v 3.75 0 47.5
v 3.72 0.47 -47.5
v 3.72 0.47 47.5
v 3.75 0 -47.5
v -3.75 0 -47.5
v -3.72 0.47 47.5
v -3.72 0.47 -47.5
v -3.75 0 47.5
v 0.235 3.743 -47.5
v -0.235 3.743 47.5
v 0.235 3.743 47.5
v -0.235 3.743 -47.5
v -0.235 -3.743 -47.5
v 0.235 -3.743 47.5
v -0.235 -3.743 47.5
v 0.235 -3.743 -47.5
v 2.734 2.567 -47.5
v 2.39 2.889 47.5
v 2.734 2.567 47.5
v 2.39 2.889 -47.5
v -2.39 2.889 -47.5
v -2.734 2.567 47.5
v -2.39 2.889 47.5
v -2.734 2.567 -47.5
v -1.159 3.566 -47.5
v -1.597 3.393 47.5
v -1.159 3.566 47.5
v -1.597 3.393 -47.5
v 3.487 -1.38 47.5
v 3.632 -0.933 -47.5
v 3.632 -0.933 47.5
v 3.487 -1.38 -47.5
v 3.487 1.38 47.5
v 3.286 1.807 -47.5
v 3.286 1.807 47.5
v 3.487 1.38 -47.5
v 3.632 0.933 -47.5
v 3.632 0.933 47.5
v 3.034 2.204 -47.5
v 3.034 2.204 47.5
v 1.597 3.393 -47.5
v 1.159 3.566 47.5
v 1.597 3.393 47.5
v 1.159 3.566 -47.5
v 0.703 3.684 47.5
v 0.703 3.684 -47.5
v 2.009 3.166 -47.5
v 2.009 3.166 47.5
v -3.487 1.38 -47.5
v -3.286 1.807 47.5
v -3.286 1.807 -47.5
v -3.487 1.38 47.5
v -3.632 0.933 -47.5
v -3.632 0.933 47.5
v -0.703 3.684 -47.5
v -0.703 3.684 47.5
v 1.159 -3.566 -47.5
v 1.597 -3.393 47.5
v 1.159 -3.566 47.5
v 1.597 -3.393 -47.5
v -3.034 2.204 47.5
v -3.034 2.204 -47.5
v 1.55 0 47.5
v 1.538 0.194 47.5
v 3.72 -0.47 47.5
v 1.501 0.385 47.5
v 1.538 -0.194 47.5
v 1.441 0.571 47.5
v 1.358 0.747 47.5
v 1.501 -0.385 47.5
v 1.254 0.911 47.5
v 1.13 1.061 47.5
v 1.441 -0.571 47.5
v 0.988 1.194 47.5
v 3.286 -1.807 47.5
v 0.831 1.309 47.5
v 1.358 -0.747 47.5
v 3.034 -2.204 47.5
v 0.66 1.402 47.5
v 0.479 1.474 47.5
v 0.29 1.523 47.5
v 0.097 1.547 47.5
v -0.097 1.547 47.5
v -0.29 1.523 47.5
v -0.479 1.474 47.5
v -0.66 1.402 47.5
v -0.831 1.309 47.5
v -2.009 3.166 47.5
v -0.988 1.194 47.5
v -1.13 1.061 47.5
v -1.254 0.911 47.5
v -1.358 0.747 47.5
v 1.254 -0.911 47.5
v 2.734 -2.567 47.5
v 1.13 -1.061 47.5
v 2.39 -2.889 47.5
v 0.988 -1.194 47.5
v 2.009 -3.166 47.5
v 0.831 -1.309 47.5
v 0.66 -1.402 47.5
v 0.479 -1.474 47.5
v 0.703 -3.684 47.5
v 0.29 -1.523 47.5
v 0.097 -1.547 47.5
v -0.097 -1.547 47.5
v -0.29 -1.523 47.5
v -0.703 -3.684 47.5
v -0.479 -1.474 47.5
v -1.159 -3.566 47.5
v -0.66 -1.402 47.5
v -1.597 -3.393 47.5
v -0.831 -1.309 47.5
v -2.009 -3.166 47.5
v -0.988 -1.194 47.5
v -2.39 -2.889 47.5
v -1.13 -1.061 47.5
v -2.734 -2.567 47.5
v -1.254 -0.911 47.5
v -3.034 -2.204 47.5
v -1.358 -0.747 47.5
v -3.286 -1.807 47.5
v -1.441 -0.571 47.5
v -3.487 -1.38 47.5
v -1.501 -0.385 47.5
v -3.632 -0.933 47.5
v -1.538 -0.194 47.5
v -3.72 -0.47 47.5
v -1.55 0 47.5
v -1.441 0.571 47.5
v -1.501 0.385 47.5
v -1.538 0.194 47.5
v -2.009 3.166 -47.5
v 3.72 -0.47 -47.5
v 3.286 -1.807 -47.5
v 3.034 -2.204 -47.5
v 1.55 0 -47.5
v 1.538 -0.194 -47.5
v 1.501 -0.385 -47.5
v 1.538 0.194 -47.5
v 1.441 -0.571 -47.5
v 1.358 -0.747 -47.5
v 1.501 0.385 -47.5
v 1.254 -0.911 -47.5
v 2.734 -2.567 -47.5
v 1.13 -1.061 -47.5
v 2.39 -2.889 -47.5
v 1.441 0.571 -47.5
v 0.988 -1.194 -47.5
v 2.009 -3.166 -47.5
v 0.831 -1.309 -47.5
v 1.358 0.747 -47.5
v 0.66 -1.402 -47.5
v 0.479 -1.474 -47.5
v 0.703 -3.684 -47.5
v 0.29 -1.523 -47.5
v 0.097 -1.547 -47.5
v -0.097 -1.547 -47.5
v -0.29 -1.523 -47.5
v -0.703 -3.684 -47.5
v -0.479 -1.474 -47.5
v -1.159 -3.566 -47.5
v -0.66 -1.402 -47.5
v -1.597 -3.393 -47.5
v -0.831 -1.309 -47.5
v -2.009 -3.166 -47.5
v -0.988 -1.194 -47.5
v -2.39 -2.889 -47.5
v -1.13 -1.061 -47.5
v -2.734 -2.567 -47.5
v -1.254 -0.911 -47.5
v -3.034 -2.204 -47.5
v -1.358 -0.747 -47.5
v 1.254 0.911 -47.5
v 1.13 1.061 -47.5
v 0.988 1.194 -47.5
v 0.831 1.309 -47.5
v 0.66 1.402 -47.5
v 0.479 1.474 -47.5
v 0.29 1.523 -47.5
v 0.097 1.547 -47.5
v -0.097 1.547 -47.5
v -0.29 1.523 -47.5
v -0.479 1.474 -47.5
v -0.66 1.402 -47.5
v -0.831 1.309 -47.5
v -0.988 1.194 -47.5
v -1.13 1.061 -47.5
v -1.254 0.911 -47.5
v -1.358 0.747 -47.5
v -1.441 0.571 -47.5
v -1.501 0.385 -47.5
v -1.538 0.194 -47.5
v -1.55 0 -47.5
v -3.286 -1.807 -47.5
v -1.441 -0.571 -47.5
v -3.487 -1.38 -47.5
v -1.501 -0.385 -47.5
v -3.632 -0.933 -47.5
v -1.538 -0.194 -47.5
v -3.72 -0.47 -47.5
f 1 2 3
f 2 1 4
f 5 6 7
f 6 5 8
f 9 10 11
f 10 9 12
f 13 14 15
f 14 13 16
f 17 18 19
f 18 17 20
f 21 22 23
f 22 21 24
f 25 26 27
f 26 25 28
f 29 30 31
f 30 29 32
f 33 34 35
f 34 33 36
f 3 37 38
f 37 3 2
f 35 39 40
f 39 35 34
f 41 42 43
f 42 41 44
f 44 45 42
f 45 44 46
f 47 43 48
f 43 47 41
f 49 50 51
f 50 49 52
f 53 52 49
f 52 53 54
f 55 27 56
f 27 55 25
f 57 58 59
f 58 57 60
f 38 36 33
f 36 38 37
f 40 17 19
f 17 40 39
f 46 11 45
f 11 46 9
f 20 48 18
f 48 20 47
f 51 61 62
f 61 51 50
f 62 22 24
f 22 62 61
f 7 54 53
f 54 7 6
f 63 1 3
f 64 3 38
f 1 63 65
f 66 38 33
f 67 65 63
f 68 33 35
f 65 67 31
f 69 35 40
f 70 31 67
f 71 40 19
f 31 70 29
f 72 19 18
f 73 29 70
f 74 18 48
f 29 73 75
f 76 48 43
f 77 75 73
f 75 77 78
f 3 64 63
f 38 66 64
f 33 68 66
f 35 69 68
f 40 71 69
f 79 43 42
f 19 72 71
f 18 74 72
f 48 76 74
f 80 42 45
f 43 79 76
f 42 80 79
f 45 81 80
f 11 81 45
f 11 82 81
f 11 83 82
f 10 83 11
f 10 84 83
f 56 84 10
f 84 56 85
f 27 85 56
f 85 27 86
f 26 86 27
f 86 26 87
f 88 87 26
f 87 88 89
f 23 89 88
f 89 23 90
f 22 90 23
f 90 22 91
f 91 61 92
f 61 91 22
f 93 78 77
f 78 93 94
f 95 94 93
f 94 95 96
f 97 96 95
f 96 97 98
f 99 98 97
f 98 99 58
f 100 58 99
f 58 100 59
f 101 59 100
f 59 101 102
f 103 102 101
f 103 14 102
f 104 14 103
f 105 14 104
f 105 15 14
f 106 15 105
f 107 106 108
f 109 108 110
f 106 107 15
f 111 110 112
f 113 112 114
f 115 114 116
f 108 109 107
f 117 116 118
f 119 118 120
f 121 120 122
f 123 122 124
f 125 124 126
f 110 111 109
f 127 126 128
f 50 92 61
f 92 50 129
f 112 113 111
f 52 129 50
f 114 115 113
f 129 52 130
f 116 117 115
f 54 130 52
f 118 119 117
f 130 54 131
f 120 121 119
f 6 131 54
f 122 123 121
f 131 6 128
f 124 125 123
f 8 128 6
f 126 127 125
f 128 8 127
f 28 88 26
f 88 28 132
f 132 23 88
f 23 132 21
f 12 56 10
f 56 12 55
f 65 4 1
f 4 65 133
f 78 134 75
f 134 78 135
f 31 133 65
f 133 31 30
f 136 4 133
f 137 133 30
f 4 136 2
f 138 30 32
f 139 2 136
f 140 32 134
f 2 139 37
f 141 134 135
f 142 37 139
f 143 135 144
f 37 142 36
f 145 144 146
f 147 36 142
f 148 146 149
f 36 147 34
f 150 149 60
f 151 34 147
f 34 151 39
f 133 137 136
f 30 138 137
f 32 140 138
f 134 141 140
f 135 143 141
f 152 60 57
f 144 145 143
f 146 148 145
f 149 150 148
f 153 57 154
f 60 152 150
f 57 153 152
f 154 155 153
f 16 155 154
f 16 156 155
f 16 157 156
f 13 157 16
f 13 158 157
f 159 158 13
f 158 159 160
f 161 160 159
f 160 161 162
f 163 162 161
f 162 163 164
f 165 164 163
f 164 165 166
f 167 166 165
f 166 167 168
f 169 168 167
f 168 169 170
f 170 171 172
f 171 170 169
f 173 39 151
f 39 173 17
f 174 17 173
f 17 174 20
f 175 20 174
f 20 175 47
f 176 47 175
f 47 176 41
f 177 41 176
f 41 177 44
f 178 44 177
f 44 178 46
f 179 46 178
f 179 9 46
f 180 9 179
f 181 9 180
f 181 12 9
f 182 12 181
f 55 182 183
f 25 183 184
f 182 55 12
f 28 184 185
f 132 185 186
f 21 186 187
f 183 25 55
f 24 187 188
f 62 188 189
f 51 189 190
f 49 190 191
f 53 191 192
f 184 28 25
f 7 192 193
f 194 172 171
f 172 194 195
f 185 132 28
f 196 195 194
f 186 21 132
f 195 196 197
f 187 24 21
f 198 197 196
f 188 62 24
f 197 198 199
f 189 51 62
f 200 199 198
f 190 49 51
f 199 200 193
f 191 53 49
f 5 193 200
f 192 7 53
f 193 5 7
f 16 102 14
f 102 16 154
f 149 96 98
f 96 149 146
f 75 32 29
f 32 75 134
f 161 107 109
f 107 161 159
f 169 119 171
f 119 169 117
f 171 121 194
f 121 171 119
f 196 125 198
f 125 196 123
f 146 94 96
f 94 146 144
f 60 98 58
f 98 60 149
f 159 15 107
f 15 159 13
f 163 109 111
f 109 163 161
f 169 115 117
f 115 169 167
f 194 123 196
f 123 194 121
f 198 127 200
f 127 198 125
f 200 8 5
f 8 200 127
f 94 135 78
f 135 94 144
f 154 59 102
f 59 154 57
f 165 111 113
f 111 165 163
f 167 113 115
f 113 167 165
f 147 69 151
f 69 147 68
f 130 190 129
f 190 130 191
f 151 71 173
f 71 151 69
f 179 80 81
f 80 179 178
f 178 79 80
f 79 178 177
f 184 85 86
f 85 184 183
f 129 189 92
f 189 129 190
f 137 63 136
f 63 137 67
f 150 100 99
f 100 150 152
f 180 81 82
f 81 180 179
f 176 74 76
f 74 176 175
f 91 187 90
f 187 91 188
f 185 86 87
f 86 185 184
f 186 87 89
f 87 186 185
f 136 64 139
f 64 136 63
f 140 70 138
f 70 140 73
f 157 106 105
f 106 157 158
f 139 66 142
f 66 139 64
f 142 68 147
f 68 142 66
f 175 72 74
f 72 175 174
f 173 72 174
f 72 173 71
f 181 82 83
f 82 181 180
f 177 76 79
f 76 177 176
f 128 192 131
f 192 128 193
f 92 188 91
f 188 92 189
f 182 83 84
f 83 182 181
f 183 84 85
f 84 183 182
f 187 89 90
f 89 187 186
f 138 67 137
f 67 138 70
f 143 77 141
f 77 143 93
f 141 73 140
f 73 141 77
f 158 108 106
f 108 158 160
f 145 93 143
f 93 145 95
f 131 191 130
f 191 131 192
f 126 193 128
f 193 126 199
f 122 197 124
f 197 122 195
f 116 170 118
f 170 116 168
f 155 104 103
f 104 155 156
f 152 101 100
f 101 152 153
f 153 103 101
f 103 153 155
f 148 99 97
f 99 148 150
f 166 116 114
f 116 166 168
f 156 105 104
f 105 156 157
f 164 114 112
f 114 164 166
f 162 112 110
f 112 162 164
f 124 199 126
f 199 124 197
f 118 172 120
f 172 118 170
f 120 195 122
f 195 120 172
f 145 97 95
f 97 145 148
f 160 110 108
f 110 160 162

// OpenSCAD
$fn = 50;


difference() {
	union() {
		translate(v = [0, 0, -47.5000000000]) {
			cylinder(h = 95, r = 3.7500000000);
		}
	}
	union() {
		translate(v = [0, 0, -100.0000000000]) {
			cylinder(h = 200, r = 1.5500000000);
		}
	}
}
